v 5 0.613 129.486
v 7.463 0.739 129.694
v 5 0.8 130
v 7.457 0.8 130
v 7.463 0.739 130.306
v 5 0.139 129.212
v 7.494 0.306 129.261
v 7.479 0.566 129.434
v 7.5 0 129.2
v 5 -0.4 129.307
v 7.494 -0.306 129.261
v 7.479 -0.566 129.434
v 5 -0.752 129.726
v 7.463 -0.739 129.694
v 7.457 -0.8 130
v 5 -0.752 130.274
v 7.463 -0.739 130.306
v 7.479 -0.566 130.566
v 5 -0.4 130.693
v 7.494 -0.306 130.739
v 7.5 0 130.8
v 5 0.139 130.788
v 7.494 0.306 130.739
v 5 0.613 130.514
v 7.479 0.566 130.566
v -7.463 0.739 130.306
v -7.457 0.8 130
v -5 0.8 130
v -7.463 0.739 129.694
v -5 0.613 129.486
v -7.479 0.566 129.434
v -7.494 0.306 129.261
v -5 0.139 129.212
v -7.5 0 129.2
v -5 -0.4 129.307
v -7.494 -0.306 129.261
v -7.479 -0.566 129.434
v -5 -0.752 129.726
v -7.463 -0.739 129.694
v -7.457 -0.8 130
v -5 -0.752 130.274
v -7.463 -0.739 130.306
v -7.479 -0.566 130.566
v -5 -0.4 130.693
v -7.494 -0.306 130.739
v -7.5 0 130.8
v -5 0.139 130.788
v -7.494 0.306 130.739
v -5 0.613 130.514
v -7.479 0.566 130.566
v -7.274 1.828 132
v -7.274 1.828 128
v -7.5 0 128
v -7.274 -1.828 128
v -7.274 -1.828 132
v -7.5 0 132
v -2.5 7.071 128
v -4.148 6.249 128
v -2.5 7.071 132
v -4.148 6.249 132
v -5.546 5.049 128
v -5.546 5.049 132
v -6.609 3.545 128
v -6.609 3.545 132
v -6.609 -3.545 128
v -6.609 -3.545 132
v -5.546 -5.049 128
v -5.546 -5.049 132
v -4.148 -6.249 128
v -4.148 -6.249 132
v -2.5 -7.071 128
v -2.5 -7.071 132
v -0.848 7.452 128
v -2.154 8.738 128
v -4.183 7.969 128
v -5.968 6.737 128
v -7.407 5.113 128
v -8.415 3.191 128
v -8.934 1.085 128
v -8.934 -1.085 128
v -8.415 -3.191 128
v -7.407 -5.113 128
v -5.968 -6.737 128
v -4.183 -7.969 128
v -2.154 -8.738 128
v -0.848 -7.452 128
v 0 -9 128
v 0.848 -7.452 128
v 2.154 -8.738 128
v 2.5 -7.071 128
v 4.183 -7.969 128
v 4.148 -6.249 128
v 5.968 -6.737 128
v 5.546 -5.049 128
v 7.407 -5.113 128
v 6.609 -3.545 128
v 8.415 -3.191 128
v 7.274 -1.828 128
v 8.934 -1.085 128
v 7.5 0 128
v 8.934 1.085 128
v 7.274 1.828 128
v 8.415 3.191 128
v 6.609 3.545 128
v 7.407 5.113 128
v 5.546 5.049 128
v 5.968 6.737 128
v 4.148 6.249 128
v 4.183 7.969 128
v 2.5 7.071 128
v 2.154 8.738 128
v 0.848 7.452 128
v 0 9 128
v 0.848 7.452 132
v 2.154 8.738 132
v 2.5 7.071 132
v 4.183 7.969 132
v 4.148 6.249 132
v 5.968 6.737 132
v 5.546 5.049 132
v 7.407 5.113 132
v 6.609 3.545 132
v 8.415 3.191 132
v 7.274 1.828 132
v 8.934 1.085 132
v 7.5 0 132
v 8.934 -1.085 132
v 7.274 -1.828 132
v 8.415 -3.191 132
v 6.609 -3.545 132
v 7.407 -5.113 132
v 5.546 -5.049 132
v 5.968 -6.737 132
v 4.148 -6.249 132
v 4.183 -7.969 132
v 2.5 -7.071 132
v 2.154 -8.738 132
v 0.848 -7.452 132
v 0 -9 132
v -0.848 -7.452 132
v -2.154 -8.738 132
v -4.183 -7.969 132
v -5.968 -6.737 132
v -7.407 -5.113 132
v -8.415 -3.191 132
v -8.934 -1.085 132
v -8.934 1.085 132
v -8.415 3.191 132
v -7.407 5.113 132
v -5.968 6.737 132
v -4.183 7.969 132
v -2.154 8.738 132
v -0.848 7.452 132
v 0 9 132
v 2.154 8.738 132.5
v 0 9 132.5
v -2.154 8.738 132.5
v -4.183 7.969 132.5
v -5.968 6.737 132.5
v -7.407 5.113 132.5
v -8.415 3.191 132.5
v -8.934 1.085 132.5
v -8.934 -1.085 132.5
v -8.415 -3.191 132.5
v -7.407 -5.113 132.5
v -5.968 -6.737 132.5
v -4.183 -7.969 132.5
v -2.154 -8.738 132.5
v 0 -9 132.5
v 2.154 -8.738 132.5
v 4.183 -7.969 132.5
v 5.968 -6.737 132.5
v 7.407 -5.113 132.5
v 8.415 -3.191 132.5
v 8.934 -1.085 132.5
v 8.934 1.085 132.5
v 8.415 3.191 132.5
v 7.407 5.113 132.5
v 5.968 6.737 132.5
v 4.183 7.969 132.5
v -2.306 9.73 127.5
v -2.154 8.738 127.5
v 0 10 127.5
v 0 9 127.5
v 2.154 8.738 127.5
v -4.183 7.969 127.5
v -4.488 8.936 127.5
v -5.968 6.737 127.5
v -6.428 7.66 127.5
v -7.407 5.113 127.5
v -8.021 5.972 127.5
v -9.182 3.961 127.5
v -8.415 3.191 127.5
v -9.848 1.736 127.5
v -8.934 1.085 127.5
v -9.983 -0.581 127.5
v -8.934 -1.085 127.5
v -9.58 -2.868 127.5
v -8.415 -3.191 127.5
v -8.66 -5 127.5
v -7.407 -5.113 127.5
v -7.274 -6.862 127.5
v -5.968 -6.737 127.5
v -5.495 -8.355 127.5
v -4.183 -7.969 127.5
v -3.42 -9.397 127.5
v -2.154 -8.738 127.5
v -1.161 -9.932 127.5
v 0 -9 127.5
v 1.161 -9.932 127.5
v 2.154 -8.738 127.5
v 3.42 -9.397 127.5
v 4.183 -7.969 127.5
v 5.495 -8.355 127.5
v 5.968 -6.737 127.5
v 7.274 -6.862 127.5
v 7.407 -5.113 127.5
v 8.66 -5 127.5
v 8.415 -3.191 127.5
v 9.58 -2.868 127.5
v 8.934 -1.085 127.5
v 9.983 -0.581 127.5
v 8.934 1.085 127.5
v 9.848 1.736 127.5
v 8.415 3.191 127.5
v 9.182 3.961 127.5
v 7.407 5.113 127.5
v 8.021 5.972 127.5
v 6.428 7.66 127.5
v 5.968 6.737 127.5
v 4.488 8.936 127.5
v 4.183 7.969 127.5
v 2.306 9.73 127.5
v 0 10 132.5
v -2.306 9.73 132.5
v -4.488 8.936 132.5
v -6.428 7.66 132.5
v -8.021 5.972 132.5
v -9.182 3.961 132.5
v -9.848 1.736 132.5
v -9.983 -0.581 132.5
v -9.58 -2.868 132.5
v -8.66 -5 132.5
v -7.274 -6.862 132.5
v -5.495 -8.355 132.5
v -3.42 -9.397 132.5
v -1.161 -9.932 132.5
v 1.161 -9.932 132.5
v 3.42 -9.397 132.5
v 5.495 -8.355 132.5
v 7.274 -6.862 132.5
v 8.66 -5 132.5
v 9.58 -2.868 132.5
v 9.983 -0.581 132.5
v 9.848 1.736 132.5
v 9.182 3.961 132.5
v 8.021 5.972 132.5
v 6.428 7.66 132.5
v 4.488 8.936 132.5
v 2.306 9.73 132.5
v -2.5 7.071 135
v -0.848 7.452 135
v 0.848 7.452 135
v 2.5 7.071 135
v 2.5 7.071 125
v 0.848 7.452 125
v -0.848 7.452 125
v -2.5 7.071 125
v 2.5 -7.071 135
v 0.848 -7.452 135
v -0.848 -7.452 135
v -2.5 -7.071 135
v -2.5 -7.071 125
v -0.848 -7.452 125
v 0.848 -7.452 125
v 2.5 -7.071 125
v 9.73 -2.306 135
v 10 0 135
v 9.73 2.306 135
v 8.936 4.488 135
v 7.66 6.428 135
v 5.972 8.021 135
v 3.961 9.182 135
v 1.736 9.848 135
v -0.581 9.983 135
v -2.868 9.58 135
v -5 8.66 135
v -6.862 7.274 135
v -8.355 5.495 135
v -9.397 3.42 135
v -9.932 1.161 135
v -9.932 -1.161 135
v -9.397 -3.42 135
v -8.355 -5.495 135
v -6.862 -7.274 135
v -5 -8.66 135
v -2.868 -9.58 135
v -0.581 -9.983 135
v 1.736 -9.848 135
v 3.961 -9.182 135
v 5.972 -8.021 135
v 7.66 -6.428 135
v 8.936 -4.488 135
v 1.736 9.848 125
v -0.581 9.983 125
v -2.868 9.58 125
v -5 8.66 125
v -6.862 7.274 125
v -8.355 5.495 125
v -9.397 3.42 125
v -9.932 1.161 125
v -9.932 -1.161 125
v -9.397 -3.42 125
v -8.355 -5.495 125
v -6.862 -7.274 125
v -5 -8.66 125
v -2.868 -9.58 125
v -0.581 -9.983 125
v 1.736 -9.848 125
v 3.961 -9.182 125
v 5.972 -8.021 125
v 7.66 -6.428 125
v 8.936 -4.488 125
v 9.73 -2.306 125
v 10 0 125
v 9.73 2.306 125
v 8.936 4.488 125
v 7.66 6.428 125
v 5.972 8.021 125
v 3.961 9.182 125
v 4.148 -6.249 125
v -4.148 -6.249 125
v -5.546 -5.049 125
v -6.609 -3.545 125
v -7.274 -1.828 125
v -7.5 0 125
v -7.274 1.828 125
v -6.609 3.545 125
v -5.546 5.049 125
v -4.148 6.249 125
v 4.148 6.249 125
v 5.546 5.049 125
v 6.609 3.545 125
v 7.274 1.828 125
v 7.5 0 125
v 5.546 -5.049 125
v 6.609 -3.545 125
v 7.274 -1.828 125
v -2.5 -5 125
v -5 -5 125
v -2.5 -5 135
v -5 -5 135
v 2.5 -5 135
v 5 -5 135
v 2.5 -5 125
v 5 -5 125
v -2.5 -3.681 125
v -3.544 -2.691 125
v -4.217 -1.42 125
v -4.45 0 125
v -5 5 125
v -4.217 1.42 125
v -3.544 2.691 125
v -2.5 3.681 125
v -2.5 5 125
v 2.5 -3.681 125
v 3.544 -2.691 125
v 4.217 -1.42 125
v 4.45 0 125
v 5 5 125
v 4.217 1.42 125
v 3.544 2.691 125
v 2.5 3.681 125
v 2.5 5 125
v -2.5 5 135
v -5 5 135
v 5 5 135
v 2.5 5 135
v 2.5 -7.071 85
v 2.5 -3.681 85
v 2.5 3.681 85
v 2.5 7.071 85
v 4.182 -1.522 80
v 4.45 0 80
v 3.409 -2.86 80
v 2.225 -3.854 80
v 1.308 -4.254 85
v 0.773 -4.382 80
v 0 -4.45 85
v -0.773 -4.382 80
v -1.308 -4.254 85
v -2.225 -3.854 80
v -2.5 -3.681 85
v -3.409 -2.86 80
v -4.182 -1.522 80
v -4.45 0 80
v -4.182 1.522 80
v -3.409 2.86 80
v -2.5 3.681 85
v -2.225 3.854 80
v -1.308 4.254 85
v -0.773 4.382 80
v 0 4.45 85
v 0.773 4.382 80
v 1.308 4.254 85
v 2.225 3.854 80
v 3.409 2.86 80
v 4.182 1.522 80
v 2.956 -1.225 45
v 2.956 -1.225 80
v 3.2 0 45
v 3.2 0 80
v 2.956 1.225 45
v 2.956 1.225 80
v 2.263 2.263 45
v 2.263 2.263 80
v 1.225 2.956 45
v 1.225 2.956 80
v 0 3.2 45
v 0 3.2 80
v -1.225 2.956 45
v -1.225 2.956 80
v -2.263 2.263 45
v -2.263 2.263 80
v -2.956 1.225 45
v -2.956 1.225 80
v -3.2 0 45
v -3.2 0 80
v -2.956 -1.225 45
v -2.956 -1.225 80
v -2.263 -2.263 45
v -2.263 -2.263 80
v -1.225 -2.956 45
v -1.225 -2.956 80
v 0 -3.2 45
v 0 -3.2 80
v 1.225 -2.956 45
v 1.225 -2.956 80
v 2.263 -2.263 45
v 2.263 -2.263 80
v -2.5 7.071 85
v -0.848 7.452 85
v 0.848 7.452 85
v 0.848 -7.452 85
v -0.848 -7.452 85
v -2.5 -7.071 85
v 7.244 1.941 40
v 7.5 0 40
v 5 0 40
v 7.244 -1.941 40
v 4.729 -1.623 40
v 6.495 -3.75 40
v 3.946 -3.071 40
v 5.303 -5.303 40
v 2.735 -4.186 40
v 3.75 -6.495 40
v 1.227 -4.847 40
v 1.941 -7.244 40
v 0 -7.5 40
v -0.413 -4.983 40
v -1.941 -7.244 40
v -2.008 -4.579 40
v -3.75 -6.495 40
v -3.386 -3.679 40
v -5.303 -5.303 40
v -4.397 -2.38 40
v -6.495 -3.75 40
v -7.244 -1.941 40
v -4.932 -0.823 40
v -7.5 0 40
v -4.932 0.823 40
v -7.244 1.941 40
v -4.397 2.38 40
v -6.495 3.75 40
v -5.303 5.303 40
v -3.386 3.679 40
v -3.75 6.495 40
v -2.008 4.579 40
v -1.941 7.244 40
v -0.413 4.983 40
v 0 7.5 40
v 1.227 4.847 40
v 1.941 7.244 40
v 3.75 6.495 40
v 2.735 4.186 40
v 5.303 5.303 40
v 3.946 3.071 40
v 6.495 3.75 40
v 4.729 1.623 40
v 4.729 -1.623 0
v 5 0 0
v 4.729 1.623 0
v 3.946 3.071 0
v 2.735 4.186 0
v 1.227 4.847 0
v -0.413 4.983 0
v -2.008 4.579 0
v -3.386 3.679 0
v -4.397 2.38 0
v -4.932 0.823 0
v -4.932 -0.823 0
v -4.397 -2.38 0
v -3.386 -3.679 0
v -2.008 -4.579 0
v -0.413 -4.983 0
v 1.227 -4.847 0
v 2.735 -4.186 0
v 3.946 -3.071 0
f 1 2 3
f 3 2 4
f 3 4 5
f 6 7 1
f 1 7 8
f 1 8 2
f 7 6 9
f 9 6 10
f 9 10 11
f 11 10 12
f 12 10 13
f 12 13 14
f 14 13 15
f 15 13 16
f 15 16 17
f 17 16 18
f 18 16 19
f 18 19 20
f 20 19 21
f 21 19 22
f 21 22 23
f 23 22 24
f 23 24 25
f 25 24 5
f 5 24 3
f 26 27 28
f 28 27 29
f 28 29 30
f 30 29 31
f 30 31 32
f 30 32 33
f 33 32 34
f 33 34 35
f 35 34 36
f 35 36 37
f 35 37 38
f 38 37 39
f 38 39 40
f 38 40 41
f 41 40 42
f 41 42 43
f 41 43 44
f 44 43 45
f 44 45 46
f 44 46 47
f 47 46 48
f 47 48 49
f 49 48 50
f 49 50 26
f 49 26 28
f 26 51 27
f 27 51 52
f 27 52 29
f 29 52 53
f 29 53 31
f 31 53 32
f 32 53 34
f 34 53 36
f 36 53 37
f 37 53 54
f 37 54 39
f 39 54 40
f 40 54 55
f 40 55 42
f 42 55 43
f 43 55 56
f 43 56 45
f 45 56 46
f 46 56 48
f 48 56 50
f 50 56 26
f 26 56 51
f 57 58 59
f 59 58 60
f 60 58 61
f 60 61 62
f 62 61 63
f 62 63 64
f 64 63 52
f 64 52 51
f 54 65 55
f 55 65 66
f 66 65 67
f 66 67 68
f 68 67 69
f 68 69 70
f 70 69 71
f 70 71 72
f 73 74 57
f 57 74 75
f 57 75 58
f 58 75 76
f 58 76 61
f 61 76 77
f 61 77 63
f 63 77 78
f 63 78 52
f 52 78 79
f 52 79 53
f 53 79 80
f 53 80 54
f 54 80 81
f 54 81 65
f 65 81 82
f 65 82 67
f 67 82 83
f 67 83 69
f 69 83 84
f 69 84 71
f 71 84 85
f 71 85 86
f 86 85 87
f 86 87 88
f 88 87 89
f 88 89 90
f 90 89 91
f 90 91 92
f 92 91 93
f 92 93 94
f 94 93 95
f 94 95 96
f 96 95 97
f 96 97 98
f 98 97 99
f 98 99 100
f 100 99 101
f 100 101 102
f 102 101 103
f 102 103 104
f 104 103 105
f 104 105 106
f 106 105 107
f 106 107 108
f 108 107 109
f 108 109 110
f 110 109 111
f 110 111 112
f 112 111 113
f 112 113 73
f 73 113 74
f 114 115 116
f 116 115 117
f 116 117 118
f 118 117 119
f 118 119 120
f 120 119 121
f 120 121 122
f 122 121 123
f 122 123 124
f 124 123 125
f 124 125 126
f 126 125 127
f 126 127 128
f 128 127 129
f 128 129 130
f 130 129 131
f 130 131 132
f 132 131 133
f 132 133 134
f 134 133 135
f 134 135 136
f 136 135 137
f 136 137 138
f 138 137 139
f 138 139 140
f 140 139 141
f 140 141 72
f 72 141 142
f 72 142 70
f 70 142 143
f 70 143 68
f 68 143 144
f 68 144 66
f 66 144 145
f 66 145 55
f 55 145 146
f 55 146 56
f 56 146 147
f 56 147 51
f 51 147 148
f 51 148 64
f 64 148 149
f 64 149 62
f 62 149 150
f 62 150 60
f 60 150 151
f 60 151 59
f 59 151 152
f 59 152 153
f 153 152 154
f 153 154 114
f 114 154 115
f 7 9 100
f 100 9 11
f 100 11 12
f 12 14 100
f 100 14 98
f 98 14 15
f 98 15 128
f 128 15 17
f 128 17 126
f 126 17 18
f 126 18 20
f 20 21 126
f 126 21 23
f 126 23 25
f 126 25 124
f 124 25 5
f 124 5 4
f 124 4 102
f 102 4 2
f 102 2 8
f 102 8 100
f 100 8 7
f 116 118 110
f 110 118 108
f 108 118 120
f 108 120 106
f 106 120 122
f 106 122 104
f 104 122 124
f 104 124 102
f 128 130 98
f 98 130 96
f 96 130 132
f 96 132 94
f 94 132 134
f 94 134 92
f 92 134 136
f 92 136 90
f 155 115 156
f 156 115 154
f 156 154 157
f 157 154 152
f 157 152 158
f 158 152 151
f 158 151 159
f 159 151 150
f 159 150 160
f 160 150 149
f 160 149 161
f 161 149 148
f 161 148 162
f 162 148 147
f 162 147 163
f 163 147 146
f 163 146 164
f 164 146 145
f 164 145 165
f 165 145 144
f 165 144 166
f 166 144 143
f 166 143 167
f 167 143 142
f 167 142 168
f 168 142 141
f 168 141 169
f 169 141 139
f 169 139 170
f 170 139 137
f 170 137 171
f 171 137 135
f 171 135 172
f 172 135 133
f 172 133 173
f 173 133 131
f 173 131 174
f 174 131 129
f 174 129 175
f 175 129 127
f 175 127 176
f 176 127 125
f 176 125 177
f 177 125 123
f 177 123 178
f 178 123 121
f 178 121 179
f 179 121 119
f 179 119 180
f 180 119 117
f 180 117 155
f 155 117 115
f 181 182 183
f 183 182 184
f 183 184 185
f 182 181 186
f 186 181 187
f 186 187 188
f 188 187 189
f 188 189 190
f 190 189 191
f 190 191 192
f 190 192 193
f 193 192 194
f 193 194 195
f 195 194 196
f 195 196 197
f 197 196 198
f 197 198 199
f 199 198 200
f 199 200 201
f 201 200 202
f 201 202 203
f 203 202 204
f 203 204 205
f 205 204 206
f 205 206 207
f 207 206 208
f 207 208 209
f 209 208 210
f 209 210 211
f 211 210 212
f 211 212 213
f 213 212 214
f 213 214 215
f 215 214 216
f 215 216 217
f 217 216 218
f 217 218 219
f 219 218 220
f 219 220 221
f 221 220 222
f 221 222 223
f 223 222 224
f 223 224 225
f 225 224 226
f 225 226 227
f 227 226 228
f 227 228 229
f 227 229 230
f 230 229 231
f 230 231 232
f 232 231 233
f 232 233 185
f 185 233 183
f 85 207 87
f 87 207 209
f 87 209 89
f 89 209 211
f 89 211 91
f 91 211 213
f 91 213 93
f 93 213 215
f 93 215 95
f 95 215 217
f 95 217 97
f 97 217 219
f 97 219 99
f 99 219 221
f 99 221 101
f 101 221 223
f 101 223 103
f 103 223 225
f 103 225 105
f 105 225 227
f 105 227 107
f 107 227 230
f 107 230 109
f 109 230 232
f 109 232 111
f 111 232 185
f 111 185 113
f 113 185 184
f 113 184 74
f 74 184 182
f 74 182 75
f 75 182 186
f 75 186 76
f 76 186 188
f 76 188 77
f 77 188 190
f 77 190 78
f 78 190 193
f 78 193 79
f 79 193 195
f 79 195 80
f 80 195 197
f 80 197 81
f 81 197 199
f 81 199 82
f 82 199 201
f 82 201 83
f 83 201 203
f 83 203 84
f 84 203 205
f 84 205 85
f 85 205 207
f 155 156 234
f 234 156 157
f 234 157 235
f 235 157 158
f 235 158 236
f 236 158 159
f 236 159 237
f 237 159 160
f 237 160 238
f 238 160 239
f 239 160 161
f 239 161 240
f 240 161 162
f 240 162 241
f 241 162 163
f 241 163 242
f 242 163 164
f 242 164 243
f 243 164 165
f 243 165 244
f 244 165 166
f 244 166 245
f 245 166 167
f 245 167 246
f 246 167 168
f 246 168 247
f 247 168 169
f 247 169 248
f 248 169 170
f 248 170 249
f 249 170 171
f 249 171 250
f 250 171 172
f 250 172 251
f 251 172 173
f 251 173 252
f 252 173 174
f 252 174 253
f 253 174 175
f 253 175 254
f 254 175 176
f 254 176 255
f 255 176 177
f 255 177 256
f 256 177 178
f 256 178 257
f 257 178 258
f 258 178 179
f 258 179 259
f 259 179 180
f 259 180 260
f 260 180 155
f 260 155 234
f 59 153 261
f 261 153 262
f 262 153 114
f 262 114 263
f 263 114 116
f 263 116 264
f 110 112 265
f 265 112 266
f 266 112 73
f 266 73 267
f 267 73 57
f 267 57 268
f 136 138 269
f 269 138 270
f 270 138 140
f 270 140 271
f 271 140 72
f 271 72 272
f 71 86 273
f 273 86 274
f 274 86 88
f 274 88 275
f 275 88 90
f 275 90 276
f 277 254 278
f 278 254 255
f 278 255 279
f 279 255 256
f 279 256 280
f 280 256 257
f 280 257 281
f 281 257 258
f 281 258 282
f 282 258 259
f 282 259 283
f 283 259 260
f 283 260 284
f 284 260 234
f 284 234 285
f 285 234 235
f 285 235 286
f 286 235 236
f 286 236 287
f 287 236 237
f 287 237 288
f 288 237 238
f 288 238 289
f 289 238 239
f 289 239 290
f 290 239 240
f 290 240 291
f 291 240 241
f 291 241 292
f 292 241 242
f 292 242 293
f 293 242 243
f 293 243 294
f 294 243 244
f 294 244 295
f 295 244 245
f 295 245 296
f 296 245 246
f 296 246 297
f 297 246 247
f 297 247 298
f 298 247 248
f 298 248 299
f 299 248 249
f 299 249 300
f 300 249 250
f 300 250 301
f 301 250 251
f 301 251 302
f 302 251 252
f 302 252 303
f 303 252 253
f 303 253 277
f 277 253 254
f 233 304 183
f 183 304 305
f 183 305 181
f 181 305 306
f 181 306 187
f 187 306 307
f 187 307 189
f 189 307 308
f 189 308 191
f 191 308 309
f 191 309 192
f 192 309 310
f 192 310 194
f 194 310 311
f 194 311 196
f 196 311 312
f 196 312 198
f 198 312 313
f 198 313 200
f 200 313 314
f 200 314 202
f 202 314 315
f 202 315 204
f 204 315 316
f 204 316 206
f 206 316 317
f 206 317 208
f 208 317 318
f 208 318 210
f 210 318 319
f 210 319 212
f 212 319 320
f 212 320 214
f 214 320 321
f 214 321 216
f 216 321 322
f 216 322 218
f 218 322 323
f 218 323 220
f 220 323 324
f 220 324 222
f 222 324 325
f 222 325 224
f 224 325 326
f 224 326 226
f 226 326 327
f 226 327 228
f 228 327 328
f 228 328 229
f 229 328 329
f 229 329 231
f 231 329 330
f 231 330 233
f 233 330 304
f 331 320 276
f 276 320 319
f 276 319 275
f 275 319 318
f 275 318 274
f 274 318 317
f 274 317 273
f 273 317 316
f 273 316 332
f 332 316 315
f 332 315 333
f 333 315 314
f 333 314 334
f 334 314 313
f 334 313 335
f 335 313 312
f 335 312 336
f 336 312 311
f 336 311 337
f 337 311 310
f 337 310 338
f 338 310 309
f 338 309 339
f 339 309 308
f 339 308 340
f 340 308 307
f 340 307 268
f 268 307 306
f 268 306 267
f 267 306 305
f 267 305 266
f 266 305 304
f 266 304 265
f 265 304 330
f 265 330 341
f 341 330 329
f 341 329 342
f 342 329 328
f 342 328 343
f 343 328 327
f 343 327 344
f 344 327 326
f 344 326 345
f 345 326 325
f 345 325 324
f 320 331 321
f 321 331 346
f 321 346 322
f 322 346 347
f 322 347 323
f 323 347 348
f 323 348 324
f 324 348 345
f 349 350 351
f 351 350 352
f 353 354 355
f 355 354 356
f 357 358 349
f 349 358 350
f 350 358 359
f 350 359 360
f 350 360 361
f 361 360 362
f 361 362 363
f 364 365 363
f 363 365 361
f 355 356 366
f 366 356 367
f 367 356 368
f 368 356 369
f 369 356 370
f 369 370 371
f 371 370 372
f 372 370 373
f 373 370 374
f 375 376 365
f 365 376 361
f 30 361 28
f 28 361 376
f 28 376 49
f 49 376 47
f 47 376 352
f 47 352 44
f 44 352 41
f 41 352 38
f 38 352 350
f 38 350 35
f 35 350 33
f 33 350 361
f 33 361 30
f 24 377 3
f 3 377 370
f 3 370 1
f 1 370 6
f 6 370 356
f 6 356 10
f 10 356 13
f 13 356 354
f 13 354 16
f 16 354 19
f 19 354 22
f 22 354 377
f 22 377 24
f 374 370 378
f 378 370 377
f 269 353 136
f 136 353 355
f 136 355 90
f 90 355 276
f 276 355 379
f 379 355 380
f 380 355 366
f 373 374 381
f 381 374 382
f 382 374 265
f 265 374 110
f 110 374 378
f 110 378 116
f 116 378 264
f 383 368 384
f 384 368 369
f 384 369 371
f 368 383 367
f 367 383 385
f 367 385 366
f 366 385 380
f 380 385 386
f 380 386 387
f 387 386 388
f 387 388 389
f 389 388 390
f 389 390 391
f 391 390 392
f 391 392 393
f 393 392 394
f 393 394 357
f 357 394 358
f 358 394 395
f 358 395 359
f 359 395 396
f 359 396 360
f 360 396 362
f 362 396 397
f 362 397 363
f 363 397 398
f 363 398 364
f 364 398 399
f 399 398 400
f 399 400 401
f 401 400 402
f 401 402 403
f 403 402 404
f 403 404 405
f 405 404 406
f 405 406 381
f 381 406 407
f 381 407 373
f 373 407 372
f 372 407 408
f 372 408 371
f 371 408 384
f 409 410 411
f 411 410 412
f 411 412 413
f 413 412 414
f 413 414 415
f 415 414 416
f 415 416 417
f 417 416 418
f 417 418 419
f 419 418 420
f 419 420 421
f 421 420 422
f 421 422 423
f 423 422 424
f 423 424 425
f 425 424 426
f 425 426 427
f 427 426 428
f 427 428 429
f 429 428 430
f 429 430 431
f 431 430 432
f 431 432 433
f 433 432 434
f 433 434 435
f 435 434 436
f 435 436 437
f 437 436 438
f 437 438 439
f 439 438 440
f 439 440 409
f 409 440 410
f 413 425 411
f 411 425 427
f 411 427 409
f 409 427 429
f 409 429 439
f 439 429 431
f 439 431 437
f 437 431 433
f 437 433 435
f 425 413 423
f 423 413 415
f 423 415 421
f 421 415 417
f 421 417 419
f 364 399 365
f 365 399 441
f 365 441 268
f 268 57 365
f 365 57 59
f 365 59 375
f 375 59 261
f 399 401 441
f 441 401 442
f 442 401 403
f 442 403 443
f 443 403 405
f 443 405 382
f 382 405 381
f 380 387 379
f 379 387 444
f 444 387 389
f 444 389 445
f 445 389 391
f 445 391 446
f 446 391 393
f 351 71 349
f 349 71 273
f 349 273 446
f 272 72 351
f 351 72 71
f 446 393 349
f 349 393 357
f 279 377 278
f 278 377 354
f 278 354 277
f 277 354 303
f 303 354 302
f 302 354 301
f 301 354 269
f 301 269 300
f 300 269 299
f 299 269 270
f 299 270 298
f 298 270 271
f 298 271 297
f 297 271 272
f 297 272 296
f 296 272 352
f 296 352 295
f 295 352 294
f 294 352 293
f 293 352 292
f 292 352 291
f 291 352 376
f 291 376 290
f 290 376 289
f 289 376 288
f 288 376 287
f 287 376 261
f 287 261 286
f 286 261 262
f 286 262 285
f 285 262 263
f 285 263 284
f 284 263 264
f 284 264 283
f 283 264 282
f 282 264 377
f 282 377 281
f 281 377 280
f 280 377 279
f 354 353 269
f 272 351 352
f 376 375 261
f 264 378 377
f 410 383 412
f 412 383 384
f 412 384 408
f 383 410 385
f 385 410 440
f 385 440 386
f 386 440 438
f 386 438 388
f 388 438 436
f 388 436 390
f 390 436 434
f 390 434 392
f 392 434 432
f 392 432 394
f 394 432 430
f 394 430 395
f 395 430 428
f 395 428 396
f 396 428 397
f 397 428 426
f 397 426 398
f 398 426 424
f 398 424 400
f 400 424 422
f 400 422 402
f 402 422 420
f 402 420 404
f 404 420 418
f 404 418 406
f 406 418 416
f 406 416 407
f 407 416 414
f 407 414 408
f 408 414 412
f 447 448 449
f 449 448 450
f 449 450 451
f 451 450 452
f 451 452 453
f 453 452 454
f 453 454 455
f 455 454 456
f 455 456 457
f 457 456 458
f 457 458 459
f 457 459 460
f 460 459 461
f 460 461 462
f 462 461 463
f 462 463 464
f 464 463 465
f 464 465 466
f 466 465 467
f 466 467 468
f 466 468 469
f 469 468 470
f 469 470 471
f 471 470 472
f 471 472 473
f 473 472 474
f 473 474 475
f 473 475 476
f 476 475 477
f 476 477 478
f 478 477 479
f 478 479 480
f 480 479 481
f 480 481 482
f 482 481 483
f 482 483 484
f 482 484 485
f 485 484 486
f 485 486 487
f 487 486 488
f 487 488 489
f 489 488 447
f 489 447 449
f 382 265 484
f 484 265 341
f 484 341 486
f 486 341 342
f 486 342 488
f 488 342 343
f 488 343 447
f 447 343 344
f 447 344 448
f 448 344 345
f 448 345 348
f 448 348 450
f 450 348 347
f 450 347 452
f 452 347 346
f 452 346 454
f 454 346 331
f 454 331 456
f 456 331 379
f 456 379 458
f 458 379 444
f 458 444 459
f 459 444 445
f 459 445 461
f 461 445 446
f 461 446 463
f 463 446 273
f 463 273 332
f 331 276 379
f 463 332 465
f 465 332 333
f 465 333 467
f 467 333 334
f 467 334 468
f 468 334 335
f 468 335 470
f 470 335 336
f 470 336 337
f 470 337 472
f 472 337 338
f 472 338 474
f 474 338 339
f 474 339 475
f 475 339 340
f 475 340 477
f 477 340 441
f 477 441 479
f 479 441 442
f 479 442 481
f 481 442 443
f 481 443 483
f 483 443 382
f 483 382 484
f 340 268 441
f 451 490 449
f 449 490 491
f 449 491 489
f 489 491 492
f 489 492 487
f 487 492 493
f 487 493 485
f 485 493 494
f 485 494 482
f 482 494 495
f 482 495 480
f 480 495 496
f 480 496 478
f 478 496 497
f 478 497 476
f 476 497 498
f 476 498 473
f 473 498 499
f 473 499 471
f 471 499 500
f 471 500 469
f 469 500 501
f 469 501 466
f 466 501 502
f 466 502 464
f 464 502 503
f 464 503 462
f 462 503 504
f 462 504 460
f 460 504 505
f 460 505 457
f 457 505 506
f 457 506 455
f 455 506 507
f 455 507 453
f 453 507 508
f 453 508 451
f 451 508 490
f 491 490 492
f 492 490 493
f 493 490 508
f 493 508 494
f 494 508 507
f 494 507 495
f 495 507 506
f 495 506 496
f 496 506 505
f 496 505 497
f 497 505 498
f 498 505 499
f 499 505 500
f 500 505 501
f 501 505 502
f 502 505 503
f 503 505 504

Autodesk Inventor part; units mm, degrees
ref_plane "XY Plane" through (0, 0, 0) normal (0, 0, 1) x (1, 0, 0)
sketch "Sketch1" plane through (0, 0, 0) normal (0, 0, 1) x (1, 0, 0)
  circle A0 centre (0, 0) radius 5
  dimension "d0" = 10
extrude "Extrusion1" add sketch "Sketch1" along normal blind 40
sketch "Sketch3" plane through (0, 0, 40) normal (0, 0, 1) x (1, 0, 0)
  circle A0 centre (0, 0) radius 7.5
  dimension "d13" = 15
extrude "Extrusion3" add sketch "Sketch3" along normal blind 95
sketch "Sketch4" plane through (0, 0, 135) normal (0, 0, 1) x (1, 0, 0)
  circle A0 centre (0, 0) radius 4.45
  dimension "d16" = 8.9
extrude "Extrusion4" cut sketch "Sketch4" against normal blind 55
ref_plane "Work Plane2" through (0, 7.5, 40) normal (0, 1, 0) x (-1, 0, 0)
sketch "Sketch5" plane through (0, 7.5, 40) normal (0, 1, 0) x (-1, 0, 0)
  line L0 (2.5, 95) -> (-2.5, 95)
  line L1 (-2.5, 95) -> (-2.5, 45)
  line L2 (-2.5, 45) -> (2.5, 45)
  line L3 (2.5, 45) -> (2.5, 95)
  line L4 (7.5, 95) -> (-7.5, 95) projected
  point P0 (0, -40)
  dimension "d19" = 0
  dimension "d20" = 5
  dimension "d21" = 2.5
  dimension "d22" = 50
extrude "Extrusion5" cut sketch "Sketch5" against normal through all
sketch "Sketch6" plane through (0, 0, 80) normal (0, 0, 1) x (1, 0, 0)
  circle A0 centre (0, 0) radius 3.2
  dimension "d25" = 6.4
extrude "Extrusion6" cut sketch "Sketch6" against normal blind 35
sketch "Sketch7" plane through (0, 0, 135) normal (0, 0, 1) x (1, 0, 0)
  line L0 (-5, 5) -> (5, 5)
  line L1 (5, 5) -> (5, -5)
  line L2 (5, -5) -> (-5, -5)
  line L3 (-5, -5) -> (-5, 5)
  circle A0 centre (0, 0) radius 3.2 projected
  dimension "d29" = 10
  dimension "d30" = 10
  dimension "d31" = 5
  dimension "d32" = 5
extrude "Extrusion7" cut sketch "Sketch7" against normal blind 10
sketch "Sketch9" plane through (0, 0, 135) normal (0, 0, 1) x (1, 0, 0)
  circle A0 centre (0, 0) radius 10
  circle A1 centre (0, 0) radius 7.5
  dimension "d39" = 20
  dimension "d42" = 15
extrude "Extrusion8" add sketch "Sketch9" against normal blind 10
sketch "Sketch10" plane through (0, 0, 0) normal (1, 0, 0) x (0, 1, 0)
  line L0 (7.5, 132) -> (10, 132)
  line L1 (10, 132) -> (10, 128)
  line L2 (10, 128) -> (7.5, 128)
  line L3 (7.5, 128) -> (7.5, 132)
  line L4 (-10, 125) -> (10, 125) projected
  line L5 (0, -27) -> (0, 162) projected
  line L6 (10, 135) -> (10, 125) projected
  line L7 (9, 127.5) -> (10, 127.5)
  line L8 (10, 127.5) -> (10, 132.5)
  line L9 (10, 132.5) -> (9, 132.5)
  line L10 (9, 132.5) -> (9, 127.5)
  line L11 (-10, 135) -> (10, 135) projected
  point P0 (0, 0)
  dimension "d43" = 4
  dimension "d44" = 3
  dimension "d46" = 2.5
  dimension "d47" = 10
  dimension "d49" = 5
  dimension "d50" = 2.5
  dimension "d51" = 1
revolve "Revolution1" cut sketch "Sketch10" angle 360 about axis through (0, 0, -10) along (0, 0, 1) contours L0 L10 L2 L3 | L10 L9 L6 L0 | L0 L1 L2 L10 | L2 L6 L7 L10
ref_plane "Work Plane4" through (7.5, 0, 130) normal (1, 0, 0) x (0, 1, 0)
sketch "Sketch12" plane through (7.5, 0, 130) normal (1, 0, 0) x (0, 1, 0)
  circle A0 centre (0, 0) radius 0.8
  point P0 (0, -130)
  dimension "d53" = 1.6
extrude "Extrusion9" cut sketch "Sketch12" against normal through all
equation "\"d21\" = 0.5 * d20"
equation "\"d31\" = 0.5 * d30"
equation "\"d32\" = 0.5 * d29"
properties part number "Handle"
